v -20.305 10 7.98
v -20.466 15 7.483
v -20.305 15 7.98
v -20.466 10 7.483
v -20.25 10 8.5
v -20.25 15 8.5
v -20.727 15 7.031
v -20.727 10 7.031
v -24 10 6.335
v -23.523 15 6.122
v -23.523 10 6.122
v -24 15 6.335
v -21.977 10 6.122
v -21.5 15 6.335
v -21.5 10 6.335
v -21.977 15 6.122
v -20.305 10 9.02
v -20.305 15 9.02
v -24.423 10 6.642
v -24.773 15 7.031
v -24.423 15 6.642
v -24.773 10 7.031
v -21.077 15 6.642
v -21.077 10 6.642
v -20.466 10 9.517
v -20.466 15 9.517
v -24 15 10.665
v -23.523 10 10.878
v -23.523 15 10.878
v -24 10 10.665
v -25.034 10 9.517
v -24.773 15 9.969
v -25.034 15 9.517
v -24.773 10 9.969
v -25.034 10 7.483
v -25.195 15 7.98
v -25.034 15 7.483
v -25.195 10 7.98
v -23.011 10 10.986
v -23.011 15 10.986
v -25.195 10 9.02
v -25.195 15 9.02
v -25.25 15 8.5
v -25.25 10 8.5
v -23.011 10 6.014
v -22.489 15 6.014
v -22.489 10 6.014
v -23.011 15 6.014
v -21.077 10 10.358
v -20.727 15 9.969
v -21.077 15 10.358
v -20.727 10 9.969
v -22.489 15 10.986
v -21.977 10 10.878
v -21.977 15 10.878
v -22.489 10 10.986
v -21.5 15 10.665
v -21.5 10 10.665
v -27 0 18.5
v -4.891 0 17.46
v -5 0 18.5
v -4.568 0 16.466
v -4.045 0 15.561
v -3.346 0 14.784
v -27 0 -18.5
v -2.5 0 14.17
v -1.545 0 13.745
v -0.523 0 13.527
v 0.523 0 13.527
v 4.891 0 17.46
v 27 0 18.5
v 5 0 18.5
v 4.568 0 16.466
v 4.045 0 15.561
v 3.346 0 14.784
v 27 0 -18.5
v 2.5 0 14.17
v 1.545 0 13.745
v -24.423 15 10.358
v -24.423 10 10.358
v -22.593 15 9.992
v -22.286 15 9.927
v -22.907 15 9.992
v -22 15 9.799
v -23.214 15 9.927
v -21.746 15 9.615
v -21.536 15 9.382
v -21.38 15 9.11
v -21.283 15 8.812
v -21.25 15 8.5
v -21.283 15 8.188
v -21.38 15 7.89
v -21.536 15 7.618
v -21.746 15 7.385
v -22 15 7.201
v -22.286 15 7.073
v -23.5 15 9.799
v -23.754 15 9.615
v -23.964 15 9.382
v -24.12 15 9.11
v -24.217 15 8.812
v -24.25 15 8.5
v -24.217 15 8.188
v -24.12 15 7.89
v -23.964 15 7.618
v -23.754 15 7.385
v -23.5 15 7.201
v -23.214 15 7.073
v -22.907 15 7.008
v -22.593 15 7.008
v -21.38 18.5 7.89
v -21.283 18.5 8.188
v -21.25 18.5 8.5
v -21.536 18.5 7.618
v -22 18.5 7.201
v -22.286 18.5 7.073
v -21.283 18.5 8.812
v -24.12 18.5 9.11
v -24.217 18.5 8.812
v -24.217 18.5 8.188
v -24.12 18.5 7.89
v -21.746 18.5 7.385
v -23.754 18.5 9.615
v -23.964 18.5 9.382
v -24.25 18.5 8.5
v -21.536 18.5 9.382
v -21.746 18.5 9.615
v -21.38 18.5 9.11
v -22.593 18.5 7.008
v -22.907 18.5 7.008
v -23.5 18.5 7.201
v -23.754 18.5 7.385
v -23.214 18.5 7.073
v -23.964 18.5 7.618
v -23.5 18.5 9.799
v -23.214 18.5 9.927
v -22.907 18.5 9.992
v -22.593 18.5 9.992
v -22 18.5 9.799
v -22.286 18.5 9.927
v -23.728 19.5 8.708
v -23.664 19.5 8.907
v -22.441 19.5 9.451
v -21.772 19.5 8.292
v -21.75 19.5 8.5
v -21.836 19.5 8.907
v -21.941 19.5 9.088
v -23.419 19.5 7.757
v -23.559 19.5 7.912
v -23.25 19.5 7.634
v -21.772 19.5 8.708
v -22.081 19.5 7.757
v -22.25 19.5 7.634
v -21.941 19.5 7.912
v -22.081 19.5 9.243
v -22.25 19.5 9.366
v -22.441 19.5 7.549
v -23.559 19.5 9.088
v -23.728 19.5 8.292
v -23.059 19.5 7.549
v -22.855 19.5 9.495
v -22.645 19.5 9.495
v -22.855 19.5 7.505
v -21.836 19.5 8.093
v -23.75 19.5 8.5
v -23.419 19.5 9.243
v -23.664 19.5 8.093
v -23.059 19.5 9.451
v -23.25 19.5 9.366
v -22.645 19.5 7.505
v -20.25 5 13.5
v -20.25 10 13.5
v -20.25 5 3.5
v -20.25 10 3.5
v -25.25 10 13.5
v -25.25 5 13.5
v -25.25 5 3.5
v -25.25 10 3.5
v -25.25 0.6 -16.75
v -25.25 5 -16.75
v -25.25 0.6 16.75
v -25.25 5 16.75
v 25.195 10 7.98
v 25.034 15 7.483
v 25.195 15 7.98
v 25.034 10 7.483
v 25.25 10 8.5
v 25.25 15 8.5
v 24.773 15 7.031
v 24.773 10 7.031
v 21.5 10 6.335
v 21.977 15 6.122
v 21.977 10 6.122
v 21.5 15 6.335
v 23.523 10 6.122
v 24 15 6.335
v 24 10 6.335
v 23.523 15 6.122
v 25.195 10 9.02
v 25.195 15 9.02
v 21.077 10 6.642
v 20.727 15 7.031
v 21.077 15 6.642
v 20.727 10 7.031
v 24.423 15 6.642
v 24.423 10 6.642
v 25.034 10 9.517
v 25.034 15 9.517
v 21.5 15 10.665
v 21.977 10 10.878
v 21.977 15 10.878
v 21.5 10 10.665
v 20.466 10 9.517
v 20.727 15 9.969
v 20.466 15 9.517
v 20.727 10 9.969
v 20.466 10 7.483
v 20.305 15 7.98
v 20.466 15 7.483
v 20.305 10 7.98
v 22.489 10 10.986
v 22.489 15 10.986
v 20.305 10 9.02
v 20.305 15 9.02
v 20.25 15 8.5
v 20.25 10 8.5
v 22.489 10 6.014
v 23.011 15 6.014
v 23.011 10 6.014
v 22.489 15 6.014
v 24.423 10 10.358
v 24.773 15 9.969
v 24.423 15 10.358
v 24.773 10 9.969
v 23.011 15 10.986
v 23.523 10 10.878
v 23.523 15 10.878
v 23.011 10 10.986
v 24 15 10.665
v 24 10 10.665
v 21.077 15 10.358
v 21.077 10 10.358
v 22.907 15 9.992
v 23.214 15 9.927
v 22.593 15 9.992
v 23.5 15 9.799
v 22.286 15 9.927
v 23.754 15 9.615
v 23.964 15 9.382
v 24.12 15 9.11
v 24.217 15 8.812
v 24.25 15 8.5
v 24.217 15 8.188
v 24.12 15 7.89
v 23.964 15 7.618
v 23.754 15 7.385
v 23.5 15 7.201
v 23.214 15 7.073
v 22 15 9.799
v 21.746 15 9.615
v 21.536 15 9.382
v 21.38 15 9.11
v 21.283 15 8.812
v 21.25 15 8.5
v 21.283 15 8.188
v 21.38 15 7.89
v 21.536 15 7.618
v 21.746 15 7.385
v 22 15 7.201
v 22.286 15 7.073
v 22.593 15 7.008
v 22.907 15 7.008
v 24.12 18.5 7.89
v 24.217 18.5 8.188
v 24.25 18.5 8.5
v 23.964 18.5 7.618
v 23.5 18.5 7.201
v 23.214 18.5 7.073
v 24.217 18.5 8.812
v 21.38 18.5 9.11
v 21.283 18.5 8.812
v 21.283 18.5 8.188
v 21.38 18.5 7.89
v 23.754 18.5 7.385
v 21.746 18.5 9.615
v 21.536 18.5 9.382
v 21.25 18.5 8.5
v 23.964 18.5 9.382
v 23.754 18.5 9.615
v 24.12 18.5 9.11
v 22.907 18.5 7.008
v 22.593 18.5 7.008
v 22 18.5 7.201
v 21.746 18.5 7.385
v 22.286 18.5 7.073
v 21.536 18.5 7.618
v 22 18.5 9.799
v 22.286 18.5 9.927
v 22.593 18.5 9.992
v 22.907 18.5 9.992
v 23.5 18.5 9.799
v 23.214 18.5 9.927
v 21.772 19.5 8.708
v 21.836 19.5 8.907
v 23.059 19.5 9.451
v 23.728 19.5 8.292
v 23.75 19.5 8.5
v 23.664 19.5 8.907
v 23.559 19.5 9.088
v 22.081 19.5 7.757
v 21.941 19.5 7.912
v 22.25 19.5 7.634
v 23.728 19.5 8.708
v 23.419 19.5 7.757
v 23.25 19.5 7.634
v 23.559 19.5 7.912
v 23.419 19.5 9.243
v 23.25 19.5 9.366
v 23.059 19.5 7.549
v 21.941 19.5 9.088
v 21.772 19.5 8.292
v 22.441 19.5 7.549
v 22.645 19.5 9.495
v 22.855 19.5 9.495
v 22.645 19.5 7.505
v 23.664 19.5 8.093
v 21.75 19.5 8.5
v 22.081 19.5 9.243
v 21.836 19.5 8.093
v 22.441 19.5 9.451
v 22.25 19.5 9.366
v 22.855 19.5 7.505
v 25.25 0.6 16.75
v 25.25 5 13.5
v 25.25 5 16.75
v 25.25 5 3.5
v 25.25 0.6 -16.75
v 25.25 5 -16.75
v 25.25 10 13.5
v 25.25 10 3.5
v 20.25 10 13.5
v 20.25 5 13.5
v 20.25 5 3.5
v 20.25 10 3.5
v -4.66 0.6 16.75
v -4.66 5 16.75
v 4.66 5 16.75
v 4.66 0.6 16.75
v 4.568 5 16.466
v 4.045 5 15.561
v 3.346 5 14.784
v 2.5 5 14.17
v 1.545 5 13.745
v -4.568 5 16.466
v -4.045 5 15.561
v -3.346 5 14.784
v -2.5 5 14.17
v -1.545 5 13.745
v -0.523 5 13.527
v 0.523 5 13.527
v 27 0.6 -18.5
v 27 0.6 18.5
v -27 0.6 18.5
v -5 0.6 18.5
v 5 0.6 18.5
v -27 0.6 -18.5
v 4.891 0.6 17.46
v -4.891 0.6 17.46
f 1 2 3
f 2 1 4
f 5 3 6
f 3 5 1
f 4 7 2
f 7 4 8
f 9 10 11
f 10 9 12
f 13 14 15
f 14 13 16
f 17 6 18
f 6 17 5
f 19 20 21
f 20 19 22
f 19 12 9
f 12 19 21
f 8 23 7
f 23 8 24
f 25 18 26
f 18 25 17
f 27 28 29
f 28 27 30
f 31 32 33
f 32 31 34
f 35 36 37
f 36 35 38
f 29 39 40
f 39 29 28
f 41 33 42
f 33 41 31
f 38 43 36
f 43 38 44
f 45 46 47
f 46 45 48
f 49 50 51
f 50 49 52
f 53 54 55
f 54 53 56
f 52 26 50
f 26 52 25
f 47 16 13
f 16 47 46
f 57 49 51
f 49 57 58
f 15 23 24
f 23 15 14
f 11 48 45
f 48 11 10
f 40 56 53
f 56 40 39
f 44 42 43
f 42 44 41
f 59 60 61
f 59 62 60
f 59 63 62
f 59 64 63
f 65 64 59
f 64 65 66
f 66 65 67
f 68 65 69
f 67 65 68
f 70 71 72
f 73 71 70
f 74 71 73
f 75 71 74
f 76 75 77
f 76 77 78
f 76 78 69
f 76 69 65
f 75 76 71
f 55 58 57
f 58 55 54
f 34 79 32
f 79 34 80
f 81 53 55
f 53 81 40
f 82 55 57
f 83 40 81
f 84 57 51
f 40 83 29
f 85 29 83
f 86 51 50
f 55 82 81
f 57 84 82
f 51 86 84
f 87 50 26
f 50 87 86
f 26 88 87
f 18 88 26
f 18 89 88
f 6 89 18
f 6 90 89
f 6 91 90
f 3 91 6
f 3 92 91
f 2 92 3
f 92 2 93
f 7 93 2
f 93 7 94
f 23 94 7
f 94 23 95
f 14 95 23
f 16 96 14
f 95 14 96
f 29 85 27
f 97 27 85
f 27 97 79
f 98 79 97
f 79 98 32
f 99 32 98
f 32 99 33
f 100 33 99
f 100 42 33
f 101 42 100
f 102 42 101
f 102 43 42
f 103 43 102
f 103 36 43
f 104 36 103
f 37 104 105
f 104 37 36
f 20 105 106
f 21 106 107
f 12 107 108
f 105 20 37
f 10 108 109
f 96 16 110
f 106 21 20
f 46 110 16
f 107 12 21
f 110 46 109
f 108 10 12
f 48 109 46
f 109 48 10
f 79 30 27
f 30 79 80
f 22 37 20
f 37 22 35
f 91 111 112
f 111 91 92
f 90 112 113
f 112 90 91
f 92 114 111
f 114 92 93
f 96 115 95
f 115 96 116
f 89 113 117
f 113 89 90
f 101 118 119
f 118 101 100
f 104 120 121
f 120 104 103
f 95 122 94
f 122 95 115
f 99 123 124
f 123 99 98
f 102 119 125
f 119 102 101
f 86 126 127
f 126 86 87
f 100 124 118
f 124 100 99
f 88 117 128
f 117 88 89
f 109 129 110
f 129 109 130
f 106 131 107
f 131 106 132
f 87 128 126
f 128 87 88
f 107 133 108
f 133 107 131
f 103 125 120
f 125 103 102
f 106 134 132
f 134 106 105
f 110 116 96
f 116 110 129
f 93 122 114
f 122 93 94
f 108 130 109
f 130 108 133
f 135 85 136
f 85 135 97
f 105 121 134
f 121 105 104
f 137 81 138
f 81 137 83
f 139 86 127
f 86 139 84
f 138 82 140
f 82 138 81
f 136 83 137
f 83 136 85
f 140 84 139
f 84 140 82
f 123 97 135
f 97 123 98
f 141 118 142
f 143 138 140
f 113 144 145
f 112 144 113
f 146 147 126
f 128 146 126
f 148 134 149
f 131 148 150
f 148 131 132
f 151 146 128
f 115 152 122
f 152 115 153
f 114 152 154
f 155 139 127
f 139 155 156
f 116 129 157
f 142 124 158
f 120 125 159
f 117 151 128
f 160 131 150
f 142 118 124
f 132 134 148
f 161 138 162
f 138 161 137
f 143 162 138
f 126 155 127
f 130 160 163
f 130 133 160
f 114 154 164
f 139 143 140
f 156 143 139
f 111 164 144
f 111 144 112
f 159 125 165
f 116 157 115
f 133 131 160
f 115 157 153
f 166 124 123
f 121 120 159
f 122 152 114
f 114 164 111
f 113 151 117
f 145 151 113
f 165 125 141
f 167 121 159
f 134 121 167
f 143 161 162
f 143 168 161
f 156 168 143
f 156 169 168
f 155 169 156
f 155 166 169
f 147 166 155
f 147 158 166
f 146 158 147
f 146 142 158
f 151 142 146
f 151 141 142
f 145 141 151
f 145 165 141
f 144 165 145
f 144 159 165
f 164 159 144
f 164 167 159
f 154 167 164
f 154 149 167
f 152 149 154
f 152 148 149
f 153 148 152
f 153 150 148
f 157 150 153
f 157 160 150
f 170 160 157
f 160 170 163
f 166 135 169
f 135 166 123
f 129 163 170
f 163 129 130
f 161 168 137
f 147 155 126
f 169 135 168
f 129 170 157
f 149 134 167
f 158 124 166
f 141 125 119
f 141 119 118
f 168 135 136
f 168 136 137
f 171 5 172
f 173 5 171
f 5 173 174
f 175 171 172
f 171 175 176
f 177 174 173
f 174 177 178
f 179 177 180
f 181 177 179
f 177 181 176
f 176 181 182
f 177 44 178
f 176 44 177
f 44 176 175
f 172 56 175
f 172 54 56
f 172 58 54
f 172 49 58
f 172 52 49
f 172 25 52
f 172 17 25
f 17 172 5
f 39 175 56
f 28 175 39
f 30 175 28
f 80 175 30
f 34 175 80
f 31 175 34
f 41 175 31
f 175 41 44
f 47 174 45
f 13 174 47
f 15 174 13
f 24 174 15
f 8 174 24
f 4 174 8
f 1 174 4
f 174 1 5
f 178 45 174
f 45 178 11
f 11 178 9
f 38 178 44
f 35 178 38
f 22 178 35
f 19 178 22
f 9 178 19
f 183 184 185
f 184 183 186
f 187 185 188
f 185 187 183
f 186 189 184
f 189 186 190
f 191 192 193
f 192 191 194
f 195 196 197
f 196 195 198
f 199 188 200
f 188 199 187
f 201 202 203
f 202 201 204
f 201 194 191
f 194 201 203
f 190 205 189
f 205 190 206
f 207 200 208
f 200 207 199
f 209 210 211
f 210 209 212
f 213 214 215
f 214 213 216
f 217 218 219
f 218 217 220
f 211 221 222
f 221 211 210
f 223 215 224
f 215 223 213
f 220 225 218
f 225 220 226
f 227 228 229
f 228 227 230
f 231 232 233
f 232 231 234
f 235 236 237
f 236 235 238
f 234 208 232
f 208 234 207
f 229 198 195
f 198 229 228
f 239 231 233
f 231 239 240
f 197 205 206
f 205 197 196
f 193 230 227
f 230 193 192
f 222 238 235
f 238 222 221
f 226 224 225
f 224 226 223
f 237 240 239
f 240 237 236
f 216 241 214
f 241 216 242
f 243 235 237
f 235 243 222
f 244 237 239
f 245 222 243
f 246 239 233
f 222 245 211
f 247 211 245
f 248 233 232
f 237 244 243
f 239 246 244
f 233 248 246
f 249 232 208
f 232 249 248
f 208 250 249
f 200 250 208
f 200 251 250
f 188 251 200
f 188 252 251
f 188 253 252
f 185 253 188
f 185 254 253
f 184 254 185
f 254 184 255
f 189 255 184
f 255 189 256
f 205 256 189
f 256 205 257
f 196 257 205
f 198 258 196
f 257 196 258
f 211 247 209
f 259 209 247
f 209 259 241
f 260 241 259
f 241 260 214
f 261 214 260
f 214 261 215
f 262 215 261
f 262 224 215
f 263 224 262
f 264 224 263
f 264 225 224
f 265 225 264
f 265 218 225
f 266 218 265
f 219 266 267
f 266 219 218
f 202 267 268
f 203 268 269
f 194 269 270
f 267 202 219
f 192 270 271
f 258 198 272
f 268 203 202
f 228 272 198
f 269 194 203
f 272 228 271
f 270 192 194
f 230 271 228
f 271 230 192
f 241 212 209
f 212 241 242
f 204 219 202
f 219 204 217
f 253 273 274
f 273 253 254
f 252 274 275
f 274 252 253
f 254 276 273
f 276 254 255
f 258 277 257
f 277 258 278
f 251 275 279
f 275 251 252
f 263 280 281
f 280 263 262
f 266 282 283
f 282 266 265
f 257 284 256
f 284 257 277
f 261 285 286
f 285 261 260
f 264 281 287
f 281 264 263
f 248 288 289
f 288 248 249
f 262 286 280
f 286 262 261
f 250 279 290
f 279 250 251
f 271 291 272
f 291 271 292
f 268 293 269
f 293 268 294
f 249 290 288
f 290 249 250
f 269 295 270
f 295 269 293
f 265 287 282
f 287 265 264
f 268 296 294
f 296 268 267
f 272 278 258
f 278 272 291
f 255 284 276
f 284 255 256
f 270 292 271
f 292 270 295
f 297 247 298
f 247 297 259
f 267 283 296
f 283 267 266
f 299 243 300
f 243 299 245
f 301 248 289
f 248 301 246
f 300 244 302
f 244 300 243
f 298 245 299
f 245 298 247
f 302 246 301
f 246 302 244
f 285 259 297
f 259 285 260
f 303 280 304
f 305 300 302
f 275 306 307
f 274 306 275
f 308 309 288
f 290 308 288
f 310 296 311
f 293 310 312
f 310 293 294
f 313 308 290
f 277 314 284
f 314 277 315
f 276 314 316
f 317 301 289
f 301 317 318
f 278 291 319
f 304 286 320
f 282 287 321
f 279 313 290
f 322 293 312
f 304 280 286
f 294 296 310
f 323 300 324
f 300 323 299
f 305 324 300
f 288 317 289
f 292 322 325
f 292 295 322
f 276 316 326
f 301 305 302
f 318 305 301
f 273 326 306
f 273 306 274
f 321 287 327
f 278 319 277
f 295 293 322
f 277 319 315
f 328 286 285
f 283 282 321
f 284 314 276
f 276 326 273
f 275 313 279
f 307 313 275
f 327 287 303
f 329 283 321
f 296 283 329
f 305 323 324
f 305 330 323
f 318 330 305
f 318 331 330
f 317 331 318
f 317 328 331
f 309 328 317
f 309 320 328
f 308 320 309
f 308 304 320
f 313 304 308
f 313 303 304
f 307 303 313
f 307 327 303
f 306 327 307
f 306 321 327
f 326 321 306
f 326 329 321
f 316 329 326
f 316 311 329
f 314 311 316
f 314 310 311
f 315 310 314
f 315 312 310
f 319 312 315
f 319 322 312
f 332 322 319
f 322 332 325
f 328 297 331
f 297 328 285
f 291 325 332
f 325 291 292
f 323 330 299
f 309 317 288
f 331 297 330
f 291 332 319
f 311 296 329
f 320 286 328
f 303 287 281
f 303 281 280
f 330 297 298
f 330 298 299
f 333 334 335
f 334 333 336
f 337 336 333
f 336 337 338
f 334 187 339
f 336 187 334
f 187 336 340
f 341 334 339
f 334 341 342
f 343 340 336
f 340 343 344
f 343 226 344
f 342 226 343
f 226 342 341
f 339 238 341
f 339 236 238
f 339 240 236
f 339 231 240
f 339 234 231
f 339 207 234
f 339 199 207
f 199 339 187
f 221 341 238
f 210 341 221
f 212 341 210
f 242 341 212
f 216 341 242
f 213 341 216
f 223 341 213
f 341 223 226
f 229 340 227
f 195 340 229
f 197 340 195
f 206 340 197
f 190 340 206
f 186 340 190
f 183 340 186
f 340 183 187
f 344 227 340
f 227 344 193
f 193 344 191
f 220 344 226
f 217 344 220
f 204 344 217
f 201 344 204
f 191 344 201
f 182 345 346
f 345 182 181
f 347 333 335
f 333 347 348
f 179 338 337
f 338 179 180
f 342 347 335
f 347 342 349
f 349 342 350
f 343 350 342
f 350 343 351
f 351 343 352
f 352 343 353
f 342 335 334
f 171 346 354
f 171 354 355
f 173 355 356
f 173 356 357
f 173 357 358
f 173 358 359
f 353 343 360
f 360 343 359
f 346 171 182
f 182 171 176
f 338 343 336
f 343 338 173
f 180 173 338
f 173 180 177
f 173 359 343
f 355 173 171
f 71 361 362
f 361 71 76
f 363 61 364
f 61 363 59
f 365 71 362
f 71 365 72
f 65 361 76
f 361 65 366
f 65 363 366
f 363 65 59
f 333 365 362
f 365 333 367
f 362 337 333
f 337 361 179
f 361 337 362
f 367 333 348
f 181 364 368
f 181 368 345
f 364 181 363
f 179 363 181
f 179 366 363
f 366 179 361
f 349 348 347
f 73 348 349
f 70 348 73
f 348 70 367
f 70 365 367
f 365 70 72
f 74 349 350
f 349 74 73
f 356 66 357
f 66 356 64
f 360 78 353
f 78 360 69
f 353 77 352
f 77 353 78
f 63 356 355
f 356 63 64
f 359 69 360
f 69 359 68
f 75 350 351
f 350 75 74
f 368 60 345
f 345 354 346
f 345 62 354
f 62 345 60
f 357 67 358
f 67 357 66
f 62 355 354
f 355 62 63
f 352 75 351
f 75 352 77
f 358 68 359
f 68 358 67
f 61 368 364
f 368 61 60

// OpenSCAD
sz = 25.4*[4.25,.9,3];
rad=2;
$fn=30;

module post(p) {
    translate(p) {
        rotate([-90,0,0]) {
            cylinder(15,2.5,2.5);
            cylinder(18.5,1.5,1.5);
            translate([0,0,18.5])
                cylinder(1,1.5,1);
        }
        translate([0,5,0])
            cube([5,10,10],center=true);
    }
}

difference() {
    union() {
        translate([-25.25,0,-16.75])
        cube([50.5,5,33.5]);
        translate([-27,0,-18.5])
        cube([54,.6,37]);
        post([-22.75,0,8.5]);
        post([22.75,0,8.5]);
    }
    translate([0,-1,18.5])
    rotate([-90,0,0])
    cylinder(10,5,5);
}
